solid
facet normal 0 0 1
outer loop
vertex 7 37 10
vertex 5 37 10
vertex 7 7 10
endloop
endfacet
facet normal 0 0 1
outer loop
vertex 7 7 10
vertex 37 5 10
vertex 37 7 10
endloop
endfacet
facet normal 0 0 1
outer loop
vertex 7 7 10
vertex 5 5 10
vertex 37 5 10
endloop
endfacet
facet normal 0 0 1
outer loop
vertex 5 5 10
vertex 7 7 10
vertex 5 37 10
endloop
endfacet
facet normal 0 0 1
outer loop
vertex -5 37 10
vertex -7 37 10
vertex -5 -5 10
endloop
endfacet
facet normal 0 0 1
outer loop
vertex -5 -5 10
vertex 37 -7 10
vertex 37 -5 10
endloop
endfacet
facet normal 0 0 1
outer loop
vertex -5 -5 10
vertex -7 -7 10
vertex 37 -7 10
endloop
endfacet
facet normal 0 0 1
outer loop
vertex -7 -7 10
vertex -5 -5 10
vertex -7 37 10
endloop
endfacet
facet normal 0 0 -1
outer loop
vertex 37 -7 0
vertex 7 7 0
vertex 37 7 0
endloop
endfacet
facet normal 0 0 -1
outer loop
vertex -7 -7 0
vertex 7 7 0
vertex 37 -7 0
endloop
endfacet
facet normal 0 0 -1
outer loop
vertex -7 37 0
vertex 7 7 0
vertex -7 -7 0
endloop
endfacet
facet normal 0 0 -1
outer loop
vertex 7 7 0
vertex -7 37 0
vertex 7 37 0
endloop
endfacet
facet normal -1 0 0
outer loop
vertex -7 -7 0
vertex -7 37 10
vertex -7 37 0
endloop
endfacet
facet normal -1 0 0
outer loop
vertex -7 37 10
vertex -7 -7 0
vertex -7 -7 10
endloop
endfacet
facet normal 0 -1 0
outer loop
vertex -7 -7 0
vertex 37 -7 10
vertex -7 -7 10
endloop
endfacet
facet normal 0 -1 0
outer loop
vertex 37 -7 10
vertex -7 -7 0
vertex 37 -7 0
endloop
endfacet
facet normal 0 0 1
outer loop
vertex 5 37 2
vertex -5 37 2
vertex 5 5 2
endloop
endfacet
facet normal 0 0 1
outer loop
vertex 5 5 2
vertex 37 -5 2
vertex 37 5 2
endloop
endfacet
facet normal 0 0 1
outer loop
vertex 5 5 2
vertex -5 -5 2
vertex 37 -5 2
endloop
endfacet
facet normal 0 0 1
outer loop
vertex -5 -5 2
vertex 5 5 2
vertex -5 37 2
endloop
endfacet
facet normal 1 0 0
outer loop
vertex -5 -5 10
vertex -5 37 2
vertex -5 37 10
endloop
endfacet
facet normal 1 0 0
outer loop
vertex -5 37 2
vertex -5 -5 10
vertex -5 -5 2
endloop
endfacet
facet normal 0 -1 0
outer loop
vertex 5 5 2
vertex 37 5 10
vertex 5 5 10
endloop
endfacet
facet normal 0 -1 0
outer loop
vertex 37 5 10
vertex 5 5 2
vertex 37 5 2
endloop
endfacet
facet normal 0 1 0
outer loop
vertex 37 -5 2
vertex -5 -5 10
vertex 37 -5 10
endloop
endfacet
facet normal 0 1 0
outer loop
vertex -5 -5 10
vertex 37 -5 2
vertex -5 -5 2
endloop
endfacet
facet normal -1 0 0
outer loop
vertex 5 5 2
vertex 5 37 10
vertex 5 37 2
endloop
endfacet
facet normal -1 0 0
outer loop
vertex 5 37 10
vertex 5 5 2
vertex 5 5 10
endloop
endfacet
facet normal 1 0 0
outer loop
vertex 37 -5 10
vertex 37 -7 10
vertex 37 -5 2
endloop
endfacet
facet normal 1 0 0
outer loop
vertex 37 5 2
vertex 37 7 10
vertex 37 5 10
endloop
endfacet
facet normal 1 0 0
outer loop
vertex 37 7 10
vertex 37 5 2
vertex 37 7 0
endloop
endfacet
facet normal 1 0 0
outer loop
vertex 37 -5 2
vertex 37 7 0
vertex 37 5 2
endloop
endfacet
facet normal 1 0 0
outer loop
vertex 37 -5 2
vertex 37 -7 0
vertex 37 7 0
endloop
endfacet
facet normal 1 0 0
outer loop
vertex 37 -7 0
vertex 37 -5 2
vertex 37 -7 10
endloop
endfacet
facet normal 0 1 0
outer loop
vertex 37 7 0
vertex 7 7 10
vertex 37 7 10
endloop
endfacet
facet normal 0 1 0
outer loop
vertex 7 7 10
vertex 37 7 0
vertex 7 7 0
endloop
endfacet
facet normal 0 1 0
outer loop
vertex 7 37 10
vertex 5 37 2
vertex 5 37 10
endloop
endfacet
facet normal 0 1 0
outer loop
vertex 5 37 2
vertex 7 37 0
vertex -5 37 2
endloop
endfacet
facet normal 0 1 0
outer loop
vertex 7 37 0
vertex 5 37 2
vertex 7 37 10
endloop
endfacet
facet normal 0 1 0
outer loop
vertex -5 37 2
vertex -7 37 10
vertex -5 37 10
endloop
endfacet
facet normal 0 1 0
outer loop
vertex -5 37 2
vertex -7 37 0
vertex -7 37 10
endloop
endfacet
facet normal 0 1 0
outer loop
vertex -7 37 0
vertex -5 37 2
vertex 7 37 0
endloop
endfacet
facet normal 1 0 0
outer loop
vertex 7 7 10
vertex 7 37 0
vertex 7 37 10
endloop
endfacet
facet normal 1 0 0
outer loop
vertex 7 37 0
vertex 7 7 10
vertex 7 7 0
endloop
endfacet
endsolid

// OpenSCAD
// Угловой паз (L-образный) для соединения 2х стенок под 90°
// Модульная конструкция: центральное основание + 2 рукава (угол)

// Параметры (все размеры в мм)
center_size = 10;     // Размер центрального квадрата (внутри)
sleeve_length = 30;   // Длина рукава
groove_width = 10;    // Ширина паза (внутри) - для фанеры 9.3мм
wall_height = 10;     // Высота стенок
wall_thickness = 2;   // Толщина стенок

// Вычисляемые размеры
total_width = groove_width + 2 * wall_thickness;  // 14 мм
center_total = center_size + 2 * wall_thickness;  // 14 мм

// 1. Метод: нарисовать основание
module draw_base() {
    difference() {
        cube([center_total, center_total, wall_height]);
        translate([wall_thickness, wall_thickness, wall_thickness])
            cube([center_size, center_size, wall_height]);
    }
}

// Модуль для создания одного рукава
module single_sleeve() {
    difference() {
        cube([sleeve_length, total_width, wall_height]);
        translate([0, wall_thickness, wall_thickness])
            cube([sleeve_length, groove_width, wall_height]);
    }
}

// Метод: вырезать отверстие в стенке основания
module cut_wall_opening(side) {
    if (side == 0) {
        translate([center_total - wall_thickness - 0.1, wall_thickness, wall_thickness])
            cube([wall_thickness + 0.2, groove_width, wall_height]);
    } else if (side == 1) {
        translate([wall_thickness, center_total - wall_thickness - 0.1, wall_thickness])
            cube([groove_width, wall_thickness + 0.2, wall_height]);
    }
}

// 2. Метод: прицепить рукав к основанию
module attach_sleeve(side) {
    if (side == 0) {
        translate([center_total, center_total/2 - total_width/2, 0])
            single_sleeve();
    } else if (side == 1) {
        translate([center_total/2 + total_width/2, center_total, 0])
            rotate([0, 0, 90])
                single_sleeve();
    }
}

// Собираем L-образную конструкцию
translate([-center_total/2, -center_total/2, 0]) {
    union() {
        difference() {
            draw_base();
            cut_wall_opening(0);  // Право
            cut_wall_opening(1);  // Верх
        }
        attach_sleeve(0);  // Право
        attach_sleeve(1);  // Верх
    }
}

// Информация для проверки
echo("=== Размеры углового паза ===");
echo("Центральный квадрат (внутри):", center_size, "x", center_size, "мм");
echo("Длина рукава:", sleeve_length, "мм");
